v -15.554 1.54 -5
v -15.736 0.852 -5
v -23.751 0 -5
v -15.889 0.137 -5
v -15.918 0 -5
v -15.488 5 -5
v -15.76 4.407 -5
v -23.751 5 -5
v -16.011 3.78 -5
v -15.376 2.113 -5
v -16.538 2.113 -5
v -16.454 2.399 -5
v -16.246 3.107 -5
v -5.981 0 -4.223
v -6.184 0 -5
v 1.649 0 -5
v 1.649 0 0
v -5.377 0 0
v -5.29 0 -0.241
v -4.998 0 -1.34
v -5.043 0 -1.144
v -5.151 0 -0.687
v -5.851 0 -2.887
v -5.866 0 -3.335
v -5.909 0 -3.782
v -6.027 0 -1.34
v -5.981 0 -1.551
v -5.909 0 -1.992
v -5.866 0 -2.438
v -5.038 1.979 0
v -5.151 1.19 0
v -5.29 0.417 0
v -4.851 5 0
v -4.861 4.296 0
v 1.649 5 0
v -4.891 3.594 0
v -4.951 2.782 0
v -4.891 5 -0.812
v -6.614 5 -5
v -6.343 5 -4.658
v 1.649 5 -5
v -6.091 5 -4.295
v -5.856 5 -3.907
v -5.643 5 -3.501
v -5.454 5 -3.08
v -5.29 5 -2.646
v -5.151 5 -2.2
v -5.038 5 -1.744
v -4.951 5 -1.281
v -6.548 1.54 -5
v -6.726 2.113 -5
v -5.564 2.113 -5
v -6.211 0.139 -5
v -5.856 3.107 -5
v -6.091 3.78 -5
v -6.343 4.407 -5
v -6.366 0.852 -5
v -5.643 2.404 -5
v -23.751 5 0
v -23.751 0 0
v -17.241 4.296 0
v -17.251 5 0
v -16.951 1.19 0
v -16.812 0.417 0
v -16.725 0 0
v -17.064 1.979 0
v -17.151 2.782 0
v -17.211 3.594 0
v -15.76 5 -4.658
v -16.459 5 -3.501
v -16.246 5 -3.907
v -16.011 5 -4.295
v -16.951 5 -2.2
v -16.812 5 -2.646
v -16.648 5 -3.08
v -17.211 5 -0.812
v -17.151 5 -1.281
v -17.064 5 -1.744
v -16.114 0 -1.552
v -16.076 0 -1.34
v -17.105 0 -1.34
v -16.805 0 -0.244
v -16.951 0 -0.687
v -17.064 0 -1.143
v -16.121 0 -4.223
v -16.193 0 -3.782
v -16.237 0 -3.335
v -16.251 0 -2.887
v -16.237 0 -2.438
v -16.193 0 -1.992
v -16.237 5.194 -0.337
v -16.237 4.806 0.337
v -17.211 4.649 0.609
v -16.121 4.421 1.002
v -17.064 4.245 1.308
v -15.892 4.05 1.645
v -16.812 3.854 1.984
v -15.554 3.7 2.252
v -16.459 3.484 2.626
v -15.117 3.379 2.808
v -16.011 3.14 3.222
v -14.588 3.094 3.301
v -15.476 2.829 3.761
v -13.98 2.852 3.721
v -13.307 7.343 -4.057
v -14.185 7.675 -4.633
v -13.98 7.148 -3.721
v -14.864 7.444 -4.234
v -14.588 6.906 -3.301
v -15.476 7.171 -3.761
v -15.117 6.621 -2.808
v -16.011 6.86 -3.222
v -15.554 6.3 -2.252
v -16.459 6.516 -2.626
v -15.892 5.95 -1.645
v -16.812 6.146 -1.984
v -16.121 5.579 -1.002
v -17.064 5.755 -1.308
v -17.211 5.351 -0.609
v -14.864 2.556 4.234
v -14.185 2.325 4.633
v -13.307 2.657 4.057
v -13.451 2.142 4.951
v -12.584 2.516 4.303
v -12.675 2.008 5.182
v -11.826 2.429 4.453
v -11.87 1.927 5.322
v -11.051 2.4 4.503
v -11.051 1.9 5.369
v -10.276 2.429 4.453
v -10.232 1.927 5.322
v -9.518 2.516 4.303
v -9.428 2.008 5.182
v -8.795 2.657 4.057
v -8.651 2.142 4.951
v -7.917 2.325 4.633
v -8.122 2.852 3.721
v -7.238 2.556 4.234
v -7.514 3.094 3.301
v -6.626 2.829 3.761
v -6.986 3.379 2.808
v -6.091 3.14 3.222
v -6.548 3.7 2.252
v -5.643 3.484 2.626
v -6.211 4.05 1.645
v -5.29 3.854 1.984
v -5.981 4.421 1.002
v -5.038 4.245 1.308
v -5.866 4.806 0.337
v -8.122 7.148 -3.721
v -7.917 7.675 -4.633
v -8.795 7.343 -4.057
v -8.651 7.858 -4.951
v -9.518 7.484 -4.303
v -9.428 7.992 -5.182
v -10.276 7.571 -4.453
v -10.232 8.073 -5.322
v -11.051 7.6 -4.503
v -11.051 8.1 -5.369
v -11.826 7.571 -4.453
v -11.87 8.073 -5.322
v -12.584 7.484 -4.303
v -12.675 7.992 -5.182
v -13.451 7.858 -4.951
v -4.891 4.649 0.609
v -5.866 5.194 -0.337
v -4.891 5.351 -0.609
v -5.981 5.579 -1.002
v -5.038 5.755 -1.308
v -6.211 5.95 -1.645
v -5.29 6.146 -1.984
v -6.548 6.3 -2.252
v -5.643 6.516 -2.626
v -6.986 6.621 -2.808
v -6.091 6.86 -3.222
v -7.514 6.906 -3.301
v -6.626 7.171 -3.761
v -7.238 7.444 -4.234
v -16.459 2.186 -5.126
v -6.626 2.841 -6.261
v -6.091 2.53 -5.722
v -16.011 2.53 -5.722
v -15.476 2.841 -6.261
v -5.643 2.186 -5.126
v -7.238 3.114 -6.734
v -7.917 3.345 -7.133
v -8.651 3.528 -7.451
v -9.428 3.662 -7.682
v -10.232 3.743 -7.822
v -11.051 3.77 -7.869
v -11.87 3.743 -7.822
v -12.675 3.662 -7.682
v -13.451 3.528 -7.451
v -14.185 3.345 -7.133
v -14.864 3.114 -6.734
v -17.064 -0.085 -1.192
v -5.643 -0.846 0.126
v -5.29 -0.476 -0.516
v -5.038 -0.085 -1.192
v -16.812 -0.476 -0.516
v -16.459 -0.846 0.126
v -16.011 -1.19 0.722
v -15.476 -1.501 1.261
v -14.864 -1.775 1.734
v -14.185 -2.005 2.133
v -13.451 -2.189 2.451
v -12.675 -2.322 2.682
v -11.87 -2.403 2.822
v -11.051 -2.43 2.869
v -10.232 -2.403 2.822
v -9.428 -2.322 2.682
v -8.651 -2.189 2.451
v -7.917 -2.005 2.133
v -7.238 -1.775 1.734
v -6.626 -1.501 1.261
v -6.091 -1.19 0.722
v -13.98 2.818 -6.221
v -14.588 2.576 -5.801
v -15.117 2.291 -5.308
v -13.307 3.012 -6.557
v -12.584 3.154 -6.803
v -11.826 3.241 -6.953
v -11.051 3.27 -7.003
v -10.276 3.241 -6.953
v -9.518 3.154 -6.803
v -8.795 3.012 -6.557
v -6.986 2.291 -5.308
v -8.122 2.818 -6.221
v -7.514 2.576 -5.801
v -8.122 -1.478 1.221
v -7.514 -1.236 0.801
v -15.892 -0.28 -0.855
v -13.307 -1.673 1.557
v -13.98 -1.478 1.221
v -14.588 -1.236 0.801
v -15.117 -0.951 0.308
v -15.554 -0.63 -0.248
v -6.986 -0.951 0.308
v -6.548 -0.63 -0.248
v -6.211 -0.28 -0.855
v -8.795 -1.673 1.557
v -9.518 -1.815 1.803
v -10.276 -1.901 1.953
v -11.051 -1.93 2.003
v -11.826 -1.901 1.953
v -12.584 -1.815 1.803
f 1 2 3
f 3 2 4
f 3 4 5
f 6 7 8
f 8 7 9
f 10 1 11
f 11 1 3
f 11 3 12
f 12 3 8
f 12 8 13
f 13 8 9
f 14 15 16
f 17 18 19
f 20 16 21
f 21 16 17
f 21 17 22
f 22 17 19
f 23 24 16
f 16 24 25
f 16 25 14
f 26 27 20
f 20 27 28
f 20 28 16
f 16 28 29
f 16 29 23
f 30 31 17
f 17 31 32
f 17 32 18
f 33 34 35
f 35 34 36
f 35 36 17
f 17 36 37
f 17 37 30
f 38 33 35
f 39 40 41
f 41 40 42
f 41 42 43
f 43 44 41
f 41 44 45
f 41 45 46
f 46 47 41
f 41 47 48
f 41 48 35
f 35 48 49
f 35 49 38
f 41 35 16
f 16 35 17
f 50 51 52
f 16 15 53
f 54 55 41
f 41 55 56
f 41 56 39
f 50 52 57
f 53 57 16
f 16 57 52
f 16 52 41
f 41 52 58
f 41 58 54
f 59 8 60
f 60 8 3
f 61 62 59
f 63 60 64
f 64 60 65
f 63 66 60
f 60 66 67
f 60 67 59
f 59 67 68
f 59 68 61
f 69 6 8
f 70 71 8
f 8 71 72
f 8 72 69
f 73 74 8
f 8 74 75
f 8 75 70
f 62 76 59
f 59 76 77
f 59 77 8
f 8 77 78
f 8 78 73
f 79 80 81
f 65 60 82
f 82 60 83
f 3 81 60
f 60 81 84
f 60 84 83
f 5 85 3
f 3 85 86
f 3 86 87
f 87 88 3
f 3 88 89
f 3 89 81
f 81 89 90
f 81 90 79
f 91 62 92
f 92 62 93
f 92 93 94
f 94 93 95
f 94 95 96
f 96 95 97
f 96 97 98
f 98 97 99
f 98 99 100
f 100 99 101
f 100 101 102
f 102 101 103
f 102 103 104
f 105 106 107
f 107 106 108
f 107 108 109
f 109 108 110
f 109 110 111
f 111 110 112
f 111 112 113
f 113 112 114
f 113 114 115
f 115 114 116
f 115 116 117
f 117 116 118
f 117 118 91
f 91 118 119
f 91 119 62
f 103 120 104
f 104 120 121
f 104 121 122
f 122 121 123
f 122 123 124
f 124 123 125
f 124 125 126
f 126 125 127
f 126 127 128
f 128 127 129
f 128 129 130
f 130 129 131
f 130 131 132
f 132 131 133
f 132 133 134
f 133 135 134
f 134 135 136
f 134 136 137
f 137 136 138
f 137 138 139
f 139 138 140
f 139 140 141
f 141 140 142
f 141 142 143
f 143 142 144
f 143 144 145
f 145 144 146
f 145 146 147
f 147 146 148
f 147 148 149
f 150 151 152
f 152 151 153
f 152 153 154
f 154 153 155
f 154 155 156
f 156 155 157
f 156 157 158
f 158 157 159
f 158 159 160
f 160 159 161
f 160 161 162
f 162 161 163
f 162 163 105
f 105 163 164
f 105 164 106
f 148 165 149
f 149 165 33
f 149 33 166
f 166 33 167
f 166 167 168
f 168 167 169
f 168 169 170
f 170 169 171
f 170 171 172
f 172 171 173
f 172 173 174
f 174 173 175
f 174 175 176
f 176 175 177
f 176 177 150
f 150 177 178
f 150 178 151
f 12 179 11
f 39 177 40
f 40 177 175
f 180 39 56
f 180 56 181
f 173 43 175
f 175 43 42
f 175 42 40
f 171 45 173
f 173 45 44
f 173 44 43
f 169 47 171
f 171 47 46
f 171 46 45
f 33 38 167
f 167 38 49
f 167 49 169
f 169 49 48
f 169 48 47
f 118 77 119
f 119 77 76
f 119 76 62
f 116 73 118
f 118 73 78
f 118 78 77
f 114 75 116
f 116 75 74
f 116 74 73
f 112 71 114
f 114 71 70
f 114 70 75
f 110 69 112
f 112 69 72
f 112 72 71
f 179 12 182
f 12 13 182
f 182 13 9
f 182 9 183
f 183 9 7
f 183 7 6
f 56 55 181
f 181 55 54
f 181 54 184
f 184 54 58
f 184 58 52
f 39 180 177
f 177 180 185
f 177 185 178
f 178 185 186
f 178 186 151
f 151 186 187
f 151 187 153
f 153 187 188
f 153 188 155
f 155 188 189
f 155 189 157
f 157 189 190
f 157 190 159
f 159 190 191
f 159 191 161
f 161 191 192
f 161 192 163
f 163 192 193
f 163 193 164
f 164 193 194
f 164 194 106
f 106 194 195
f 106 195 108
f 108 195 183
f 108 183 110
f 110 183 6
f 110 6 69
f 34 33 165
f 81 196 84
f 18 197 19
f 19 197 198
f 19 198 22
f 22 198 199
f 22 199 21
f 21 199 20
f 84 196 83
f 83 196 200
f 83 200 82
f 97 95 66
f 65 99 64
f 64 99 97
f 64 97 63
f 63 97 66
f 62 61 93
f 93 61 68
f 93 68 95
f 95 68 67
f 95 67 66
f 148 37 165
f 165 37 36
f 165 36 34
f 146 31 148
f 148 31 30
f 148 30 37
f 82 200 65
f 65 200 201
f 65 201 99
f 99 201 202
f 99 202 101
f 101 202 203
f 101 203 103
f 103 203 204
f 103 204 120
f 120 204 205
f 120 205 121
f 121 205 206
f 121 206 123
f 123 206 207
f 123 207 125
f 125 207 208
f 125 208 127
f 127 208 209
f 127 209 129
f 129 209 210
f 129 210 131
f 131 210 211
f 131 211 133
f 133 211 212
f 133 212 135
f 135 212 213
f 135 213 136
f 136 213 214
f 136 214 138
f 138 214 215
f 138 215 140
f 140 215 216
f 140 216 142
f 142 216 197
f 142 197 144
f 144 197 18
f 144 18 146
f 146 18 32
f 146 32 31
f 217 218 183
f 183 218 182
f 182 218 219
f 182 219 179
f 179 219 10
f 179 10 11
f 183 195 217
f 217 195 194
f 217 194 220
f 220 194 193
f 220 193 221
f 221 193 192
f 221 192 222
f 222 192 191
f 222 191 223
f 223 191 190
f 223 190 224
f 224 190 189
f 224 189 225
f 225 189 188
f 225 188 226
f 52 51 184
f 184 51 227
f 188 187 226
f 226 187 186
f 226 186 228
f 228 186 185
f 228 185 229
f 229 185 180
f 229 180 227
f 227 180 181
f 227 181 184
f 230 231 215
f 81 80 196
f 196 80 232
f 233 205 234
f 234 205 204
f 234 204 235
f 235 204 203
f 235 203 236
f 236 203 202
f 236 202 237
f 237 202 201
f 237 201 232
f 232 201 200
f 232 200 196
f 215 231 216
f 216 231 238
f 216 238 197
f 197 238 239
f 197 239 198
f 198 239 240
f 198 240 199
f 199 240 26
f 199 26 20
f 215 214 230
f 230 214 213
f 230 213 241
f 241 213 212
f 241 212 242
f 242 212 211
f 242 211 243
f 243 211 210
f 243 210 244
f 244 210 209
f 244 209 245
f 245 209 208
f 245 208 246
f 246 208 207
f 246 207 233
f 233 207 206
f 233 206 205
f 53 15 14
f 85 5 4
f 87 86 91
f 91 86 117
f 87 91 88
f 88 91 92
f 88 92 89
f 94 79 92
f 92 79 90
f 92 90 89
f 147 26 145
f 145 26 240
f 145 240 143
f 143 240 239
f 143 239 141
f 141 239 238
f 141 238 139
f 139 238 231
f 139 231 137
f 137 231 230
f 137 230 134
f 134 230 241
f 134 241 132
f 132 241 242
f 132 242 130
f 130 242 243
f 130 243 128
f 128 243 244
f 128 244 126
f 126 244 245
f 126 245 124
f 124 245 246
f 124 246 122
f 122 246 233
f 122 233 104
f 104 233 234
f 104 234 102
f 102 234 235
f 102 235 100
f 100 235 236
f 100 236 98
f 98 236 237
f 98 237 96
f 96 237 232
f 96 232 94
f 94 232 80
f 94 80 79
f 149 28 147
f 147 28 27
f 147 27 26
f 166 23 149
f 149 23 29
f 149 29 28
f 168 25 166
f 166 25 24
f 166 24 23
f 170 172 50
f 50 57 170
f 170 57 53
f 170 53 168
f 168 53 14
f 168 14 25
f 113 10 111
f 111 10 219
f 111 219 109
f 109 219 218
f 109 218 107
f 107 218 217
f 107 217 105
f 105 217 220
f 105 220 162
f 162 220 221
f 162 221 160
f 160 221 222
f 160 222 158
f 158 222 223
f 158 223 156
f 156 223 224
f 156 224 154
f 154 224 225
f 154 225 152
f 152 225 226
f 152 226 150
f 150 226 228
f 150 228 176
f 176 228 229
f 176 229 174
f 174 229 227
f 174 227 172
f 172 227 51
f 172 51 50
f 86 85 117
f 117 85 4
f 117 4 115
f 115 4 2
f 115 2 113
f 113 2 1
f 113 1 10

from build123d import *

# Parameters (mm, degrees)
SKETCH1_W           = 25.4
SKETCH1_H           = 5
BOSS_EXTRUDE1_DEPTH = 5
SKETCH4_R           = 6.2
SKETCH4_R_2         = 5.2
BOSS_EXTRUDE2_DEPTH = 5
SKETCH5_R           = 5.2
CUT_EXTRUDE1_DEPTH  = 27.514083203


with BuildPart() as part:
    # Sketch1 → Boss-Extrude1 (new body)
    with BuildSketch(Plane(origin=(0, 0, 0), x_dir=(1, 0, 0), z_dir=(0, 1, 0))):
        with Locations((-11.05106383, 2.5)):
            Rectangle(SKETCH1_W, SKETCH1_H)
    extrude(amount=BOSS_EXTRUDE1_DEPTH)

    # Sketch4 → Boss-Extrude2 (add)
    with BuildSketch(Plane(origin=(0, 3.75, 2.165063509), x_dir=(1, 0, 0), z_dir=(0, 0.866025403784438, 0.500000000000001))):
        with Locations((-11.05106383, 2.5)):
            Circle(SKETCH4_R)
        with Locations((-11.05106383, 2.5)):
            Circle(SKETCH4_R_2, mode=Mode.SUBTRACT)
    extrude(amount=-BOSS_EXTRUDE2_DEPTH)

    # Sketch5 → Cut-Extrude1 (cut, through all)
    with BuildSketch(Plane(origin=(0, 3.75, 2.165063509), x_dir=(1, 0, 0), z_dir=(0, 0.866025403784438, 0.500000000000001))):
        with Locations((-11.05106383, 2.5)):
            Circle(SKETCH5_R)
    extrude(amount=-CUT_EXTRUDE1_DEPTH, mode=Mode.SUBTRACT)


solid = part.part
